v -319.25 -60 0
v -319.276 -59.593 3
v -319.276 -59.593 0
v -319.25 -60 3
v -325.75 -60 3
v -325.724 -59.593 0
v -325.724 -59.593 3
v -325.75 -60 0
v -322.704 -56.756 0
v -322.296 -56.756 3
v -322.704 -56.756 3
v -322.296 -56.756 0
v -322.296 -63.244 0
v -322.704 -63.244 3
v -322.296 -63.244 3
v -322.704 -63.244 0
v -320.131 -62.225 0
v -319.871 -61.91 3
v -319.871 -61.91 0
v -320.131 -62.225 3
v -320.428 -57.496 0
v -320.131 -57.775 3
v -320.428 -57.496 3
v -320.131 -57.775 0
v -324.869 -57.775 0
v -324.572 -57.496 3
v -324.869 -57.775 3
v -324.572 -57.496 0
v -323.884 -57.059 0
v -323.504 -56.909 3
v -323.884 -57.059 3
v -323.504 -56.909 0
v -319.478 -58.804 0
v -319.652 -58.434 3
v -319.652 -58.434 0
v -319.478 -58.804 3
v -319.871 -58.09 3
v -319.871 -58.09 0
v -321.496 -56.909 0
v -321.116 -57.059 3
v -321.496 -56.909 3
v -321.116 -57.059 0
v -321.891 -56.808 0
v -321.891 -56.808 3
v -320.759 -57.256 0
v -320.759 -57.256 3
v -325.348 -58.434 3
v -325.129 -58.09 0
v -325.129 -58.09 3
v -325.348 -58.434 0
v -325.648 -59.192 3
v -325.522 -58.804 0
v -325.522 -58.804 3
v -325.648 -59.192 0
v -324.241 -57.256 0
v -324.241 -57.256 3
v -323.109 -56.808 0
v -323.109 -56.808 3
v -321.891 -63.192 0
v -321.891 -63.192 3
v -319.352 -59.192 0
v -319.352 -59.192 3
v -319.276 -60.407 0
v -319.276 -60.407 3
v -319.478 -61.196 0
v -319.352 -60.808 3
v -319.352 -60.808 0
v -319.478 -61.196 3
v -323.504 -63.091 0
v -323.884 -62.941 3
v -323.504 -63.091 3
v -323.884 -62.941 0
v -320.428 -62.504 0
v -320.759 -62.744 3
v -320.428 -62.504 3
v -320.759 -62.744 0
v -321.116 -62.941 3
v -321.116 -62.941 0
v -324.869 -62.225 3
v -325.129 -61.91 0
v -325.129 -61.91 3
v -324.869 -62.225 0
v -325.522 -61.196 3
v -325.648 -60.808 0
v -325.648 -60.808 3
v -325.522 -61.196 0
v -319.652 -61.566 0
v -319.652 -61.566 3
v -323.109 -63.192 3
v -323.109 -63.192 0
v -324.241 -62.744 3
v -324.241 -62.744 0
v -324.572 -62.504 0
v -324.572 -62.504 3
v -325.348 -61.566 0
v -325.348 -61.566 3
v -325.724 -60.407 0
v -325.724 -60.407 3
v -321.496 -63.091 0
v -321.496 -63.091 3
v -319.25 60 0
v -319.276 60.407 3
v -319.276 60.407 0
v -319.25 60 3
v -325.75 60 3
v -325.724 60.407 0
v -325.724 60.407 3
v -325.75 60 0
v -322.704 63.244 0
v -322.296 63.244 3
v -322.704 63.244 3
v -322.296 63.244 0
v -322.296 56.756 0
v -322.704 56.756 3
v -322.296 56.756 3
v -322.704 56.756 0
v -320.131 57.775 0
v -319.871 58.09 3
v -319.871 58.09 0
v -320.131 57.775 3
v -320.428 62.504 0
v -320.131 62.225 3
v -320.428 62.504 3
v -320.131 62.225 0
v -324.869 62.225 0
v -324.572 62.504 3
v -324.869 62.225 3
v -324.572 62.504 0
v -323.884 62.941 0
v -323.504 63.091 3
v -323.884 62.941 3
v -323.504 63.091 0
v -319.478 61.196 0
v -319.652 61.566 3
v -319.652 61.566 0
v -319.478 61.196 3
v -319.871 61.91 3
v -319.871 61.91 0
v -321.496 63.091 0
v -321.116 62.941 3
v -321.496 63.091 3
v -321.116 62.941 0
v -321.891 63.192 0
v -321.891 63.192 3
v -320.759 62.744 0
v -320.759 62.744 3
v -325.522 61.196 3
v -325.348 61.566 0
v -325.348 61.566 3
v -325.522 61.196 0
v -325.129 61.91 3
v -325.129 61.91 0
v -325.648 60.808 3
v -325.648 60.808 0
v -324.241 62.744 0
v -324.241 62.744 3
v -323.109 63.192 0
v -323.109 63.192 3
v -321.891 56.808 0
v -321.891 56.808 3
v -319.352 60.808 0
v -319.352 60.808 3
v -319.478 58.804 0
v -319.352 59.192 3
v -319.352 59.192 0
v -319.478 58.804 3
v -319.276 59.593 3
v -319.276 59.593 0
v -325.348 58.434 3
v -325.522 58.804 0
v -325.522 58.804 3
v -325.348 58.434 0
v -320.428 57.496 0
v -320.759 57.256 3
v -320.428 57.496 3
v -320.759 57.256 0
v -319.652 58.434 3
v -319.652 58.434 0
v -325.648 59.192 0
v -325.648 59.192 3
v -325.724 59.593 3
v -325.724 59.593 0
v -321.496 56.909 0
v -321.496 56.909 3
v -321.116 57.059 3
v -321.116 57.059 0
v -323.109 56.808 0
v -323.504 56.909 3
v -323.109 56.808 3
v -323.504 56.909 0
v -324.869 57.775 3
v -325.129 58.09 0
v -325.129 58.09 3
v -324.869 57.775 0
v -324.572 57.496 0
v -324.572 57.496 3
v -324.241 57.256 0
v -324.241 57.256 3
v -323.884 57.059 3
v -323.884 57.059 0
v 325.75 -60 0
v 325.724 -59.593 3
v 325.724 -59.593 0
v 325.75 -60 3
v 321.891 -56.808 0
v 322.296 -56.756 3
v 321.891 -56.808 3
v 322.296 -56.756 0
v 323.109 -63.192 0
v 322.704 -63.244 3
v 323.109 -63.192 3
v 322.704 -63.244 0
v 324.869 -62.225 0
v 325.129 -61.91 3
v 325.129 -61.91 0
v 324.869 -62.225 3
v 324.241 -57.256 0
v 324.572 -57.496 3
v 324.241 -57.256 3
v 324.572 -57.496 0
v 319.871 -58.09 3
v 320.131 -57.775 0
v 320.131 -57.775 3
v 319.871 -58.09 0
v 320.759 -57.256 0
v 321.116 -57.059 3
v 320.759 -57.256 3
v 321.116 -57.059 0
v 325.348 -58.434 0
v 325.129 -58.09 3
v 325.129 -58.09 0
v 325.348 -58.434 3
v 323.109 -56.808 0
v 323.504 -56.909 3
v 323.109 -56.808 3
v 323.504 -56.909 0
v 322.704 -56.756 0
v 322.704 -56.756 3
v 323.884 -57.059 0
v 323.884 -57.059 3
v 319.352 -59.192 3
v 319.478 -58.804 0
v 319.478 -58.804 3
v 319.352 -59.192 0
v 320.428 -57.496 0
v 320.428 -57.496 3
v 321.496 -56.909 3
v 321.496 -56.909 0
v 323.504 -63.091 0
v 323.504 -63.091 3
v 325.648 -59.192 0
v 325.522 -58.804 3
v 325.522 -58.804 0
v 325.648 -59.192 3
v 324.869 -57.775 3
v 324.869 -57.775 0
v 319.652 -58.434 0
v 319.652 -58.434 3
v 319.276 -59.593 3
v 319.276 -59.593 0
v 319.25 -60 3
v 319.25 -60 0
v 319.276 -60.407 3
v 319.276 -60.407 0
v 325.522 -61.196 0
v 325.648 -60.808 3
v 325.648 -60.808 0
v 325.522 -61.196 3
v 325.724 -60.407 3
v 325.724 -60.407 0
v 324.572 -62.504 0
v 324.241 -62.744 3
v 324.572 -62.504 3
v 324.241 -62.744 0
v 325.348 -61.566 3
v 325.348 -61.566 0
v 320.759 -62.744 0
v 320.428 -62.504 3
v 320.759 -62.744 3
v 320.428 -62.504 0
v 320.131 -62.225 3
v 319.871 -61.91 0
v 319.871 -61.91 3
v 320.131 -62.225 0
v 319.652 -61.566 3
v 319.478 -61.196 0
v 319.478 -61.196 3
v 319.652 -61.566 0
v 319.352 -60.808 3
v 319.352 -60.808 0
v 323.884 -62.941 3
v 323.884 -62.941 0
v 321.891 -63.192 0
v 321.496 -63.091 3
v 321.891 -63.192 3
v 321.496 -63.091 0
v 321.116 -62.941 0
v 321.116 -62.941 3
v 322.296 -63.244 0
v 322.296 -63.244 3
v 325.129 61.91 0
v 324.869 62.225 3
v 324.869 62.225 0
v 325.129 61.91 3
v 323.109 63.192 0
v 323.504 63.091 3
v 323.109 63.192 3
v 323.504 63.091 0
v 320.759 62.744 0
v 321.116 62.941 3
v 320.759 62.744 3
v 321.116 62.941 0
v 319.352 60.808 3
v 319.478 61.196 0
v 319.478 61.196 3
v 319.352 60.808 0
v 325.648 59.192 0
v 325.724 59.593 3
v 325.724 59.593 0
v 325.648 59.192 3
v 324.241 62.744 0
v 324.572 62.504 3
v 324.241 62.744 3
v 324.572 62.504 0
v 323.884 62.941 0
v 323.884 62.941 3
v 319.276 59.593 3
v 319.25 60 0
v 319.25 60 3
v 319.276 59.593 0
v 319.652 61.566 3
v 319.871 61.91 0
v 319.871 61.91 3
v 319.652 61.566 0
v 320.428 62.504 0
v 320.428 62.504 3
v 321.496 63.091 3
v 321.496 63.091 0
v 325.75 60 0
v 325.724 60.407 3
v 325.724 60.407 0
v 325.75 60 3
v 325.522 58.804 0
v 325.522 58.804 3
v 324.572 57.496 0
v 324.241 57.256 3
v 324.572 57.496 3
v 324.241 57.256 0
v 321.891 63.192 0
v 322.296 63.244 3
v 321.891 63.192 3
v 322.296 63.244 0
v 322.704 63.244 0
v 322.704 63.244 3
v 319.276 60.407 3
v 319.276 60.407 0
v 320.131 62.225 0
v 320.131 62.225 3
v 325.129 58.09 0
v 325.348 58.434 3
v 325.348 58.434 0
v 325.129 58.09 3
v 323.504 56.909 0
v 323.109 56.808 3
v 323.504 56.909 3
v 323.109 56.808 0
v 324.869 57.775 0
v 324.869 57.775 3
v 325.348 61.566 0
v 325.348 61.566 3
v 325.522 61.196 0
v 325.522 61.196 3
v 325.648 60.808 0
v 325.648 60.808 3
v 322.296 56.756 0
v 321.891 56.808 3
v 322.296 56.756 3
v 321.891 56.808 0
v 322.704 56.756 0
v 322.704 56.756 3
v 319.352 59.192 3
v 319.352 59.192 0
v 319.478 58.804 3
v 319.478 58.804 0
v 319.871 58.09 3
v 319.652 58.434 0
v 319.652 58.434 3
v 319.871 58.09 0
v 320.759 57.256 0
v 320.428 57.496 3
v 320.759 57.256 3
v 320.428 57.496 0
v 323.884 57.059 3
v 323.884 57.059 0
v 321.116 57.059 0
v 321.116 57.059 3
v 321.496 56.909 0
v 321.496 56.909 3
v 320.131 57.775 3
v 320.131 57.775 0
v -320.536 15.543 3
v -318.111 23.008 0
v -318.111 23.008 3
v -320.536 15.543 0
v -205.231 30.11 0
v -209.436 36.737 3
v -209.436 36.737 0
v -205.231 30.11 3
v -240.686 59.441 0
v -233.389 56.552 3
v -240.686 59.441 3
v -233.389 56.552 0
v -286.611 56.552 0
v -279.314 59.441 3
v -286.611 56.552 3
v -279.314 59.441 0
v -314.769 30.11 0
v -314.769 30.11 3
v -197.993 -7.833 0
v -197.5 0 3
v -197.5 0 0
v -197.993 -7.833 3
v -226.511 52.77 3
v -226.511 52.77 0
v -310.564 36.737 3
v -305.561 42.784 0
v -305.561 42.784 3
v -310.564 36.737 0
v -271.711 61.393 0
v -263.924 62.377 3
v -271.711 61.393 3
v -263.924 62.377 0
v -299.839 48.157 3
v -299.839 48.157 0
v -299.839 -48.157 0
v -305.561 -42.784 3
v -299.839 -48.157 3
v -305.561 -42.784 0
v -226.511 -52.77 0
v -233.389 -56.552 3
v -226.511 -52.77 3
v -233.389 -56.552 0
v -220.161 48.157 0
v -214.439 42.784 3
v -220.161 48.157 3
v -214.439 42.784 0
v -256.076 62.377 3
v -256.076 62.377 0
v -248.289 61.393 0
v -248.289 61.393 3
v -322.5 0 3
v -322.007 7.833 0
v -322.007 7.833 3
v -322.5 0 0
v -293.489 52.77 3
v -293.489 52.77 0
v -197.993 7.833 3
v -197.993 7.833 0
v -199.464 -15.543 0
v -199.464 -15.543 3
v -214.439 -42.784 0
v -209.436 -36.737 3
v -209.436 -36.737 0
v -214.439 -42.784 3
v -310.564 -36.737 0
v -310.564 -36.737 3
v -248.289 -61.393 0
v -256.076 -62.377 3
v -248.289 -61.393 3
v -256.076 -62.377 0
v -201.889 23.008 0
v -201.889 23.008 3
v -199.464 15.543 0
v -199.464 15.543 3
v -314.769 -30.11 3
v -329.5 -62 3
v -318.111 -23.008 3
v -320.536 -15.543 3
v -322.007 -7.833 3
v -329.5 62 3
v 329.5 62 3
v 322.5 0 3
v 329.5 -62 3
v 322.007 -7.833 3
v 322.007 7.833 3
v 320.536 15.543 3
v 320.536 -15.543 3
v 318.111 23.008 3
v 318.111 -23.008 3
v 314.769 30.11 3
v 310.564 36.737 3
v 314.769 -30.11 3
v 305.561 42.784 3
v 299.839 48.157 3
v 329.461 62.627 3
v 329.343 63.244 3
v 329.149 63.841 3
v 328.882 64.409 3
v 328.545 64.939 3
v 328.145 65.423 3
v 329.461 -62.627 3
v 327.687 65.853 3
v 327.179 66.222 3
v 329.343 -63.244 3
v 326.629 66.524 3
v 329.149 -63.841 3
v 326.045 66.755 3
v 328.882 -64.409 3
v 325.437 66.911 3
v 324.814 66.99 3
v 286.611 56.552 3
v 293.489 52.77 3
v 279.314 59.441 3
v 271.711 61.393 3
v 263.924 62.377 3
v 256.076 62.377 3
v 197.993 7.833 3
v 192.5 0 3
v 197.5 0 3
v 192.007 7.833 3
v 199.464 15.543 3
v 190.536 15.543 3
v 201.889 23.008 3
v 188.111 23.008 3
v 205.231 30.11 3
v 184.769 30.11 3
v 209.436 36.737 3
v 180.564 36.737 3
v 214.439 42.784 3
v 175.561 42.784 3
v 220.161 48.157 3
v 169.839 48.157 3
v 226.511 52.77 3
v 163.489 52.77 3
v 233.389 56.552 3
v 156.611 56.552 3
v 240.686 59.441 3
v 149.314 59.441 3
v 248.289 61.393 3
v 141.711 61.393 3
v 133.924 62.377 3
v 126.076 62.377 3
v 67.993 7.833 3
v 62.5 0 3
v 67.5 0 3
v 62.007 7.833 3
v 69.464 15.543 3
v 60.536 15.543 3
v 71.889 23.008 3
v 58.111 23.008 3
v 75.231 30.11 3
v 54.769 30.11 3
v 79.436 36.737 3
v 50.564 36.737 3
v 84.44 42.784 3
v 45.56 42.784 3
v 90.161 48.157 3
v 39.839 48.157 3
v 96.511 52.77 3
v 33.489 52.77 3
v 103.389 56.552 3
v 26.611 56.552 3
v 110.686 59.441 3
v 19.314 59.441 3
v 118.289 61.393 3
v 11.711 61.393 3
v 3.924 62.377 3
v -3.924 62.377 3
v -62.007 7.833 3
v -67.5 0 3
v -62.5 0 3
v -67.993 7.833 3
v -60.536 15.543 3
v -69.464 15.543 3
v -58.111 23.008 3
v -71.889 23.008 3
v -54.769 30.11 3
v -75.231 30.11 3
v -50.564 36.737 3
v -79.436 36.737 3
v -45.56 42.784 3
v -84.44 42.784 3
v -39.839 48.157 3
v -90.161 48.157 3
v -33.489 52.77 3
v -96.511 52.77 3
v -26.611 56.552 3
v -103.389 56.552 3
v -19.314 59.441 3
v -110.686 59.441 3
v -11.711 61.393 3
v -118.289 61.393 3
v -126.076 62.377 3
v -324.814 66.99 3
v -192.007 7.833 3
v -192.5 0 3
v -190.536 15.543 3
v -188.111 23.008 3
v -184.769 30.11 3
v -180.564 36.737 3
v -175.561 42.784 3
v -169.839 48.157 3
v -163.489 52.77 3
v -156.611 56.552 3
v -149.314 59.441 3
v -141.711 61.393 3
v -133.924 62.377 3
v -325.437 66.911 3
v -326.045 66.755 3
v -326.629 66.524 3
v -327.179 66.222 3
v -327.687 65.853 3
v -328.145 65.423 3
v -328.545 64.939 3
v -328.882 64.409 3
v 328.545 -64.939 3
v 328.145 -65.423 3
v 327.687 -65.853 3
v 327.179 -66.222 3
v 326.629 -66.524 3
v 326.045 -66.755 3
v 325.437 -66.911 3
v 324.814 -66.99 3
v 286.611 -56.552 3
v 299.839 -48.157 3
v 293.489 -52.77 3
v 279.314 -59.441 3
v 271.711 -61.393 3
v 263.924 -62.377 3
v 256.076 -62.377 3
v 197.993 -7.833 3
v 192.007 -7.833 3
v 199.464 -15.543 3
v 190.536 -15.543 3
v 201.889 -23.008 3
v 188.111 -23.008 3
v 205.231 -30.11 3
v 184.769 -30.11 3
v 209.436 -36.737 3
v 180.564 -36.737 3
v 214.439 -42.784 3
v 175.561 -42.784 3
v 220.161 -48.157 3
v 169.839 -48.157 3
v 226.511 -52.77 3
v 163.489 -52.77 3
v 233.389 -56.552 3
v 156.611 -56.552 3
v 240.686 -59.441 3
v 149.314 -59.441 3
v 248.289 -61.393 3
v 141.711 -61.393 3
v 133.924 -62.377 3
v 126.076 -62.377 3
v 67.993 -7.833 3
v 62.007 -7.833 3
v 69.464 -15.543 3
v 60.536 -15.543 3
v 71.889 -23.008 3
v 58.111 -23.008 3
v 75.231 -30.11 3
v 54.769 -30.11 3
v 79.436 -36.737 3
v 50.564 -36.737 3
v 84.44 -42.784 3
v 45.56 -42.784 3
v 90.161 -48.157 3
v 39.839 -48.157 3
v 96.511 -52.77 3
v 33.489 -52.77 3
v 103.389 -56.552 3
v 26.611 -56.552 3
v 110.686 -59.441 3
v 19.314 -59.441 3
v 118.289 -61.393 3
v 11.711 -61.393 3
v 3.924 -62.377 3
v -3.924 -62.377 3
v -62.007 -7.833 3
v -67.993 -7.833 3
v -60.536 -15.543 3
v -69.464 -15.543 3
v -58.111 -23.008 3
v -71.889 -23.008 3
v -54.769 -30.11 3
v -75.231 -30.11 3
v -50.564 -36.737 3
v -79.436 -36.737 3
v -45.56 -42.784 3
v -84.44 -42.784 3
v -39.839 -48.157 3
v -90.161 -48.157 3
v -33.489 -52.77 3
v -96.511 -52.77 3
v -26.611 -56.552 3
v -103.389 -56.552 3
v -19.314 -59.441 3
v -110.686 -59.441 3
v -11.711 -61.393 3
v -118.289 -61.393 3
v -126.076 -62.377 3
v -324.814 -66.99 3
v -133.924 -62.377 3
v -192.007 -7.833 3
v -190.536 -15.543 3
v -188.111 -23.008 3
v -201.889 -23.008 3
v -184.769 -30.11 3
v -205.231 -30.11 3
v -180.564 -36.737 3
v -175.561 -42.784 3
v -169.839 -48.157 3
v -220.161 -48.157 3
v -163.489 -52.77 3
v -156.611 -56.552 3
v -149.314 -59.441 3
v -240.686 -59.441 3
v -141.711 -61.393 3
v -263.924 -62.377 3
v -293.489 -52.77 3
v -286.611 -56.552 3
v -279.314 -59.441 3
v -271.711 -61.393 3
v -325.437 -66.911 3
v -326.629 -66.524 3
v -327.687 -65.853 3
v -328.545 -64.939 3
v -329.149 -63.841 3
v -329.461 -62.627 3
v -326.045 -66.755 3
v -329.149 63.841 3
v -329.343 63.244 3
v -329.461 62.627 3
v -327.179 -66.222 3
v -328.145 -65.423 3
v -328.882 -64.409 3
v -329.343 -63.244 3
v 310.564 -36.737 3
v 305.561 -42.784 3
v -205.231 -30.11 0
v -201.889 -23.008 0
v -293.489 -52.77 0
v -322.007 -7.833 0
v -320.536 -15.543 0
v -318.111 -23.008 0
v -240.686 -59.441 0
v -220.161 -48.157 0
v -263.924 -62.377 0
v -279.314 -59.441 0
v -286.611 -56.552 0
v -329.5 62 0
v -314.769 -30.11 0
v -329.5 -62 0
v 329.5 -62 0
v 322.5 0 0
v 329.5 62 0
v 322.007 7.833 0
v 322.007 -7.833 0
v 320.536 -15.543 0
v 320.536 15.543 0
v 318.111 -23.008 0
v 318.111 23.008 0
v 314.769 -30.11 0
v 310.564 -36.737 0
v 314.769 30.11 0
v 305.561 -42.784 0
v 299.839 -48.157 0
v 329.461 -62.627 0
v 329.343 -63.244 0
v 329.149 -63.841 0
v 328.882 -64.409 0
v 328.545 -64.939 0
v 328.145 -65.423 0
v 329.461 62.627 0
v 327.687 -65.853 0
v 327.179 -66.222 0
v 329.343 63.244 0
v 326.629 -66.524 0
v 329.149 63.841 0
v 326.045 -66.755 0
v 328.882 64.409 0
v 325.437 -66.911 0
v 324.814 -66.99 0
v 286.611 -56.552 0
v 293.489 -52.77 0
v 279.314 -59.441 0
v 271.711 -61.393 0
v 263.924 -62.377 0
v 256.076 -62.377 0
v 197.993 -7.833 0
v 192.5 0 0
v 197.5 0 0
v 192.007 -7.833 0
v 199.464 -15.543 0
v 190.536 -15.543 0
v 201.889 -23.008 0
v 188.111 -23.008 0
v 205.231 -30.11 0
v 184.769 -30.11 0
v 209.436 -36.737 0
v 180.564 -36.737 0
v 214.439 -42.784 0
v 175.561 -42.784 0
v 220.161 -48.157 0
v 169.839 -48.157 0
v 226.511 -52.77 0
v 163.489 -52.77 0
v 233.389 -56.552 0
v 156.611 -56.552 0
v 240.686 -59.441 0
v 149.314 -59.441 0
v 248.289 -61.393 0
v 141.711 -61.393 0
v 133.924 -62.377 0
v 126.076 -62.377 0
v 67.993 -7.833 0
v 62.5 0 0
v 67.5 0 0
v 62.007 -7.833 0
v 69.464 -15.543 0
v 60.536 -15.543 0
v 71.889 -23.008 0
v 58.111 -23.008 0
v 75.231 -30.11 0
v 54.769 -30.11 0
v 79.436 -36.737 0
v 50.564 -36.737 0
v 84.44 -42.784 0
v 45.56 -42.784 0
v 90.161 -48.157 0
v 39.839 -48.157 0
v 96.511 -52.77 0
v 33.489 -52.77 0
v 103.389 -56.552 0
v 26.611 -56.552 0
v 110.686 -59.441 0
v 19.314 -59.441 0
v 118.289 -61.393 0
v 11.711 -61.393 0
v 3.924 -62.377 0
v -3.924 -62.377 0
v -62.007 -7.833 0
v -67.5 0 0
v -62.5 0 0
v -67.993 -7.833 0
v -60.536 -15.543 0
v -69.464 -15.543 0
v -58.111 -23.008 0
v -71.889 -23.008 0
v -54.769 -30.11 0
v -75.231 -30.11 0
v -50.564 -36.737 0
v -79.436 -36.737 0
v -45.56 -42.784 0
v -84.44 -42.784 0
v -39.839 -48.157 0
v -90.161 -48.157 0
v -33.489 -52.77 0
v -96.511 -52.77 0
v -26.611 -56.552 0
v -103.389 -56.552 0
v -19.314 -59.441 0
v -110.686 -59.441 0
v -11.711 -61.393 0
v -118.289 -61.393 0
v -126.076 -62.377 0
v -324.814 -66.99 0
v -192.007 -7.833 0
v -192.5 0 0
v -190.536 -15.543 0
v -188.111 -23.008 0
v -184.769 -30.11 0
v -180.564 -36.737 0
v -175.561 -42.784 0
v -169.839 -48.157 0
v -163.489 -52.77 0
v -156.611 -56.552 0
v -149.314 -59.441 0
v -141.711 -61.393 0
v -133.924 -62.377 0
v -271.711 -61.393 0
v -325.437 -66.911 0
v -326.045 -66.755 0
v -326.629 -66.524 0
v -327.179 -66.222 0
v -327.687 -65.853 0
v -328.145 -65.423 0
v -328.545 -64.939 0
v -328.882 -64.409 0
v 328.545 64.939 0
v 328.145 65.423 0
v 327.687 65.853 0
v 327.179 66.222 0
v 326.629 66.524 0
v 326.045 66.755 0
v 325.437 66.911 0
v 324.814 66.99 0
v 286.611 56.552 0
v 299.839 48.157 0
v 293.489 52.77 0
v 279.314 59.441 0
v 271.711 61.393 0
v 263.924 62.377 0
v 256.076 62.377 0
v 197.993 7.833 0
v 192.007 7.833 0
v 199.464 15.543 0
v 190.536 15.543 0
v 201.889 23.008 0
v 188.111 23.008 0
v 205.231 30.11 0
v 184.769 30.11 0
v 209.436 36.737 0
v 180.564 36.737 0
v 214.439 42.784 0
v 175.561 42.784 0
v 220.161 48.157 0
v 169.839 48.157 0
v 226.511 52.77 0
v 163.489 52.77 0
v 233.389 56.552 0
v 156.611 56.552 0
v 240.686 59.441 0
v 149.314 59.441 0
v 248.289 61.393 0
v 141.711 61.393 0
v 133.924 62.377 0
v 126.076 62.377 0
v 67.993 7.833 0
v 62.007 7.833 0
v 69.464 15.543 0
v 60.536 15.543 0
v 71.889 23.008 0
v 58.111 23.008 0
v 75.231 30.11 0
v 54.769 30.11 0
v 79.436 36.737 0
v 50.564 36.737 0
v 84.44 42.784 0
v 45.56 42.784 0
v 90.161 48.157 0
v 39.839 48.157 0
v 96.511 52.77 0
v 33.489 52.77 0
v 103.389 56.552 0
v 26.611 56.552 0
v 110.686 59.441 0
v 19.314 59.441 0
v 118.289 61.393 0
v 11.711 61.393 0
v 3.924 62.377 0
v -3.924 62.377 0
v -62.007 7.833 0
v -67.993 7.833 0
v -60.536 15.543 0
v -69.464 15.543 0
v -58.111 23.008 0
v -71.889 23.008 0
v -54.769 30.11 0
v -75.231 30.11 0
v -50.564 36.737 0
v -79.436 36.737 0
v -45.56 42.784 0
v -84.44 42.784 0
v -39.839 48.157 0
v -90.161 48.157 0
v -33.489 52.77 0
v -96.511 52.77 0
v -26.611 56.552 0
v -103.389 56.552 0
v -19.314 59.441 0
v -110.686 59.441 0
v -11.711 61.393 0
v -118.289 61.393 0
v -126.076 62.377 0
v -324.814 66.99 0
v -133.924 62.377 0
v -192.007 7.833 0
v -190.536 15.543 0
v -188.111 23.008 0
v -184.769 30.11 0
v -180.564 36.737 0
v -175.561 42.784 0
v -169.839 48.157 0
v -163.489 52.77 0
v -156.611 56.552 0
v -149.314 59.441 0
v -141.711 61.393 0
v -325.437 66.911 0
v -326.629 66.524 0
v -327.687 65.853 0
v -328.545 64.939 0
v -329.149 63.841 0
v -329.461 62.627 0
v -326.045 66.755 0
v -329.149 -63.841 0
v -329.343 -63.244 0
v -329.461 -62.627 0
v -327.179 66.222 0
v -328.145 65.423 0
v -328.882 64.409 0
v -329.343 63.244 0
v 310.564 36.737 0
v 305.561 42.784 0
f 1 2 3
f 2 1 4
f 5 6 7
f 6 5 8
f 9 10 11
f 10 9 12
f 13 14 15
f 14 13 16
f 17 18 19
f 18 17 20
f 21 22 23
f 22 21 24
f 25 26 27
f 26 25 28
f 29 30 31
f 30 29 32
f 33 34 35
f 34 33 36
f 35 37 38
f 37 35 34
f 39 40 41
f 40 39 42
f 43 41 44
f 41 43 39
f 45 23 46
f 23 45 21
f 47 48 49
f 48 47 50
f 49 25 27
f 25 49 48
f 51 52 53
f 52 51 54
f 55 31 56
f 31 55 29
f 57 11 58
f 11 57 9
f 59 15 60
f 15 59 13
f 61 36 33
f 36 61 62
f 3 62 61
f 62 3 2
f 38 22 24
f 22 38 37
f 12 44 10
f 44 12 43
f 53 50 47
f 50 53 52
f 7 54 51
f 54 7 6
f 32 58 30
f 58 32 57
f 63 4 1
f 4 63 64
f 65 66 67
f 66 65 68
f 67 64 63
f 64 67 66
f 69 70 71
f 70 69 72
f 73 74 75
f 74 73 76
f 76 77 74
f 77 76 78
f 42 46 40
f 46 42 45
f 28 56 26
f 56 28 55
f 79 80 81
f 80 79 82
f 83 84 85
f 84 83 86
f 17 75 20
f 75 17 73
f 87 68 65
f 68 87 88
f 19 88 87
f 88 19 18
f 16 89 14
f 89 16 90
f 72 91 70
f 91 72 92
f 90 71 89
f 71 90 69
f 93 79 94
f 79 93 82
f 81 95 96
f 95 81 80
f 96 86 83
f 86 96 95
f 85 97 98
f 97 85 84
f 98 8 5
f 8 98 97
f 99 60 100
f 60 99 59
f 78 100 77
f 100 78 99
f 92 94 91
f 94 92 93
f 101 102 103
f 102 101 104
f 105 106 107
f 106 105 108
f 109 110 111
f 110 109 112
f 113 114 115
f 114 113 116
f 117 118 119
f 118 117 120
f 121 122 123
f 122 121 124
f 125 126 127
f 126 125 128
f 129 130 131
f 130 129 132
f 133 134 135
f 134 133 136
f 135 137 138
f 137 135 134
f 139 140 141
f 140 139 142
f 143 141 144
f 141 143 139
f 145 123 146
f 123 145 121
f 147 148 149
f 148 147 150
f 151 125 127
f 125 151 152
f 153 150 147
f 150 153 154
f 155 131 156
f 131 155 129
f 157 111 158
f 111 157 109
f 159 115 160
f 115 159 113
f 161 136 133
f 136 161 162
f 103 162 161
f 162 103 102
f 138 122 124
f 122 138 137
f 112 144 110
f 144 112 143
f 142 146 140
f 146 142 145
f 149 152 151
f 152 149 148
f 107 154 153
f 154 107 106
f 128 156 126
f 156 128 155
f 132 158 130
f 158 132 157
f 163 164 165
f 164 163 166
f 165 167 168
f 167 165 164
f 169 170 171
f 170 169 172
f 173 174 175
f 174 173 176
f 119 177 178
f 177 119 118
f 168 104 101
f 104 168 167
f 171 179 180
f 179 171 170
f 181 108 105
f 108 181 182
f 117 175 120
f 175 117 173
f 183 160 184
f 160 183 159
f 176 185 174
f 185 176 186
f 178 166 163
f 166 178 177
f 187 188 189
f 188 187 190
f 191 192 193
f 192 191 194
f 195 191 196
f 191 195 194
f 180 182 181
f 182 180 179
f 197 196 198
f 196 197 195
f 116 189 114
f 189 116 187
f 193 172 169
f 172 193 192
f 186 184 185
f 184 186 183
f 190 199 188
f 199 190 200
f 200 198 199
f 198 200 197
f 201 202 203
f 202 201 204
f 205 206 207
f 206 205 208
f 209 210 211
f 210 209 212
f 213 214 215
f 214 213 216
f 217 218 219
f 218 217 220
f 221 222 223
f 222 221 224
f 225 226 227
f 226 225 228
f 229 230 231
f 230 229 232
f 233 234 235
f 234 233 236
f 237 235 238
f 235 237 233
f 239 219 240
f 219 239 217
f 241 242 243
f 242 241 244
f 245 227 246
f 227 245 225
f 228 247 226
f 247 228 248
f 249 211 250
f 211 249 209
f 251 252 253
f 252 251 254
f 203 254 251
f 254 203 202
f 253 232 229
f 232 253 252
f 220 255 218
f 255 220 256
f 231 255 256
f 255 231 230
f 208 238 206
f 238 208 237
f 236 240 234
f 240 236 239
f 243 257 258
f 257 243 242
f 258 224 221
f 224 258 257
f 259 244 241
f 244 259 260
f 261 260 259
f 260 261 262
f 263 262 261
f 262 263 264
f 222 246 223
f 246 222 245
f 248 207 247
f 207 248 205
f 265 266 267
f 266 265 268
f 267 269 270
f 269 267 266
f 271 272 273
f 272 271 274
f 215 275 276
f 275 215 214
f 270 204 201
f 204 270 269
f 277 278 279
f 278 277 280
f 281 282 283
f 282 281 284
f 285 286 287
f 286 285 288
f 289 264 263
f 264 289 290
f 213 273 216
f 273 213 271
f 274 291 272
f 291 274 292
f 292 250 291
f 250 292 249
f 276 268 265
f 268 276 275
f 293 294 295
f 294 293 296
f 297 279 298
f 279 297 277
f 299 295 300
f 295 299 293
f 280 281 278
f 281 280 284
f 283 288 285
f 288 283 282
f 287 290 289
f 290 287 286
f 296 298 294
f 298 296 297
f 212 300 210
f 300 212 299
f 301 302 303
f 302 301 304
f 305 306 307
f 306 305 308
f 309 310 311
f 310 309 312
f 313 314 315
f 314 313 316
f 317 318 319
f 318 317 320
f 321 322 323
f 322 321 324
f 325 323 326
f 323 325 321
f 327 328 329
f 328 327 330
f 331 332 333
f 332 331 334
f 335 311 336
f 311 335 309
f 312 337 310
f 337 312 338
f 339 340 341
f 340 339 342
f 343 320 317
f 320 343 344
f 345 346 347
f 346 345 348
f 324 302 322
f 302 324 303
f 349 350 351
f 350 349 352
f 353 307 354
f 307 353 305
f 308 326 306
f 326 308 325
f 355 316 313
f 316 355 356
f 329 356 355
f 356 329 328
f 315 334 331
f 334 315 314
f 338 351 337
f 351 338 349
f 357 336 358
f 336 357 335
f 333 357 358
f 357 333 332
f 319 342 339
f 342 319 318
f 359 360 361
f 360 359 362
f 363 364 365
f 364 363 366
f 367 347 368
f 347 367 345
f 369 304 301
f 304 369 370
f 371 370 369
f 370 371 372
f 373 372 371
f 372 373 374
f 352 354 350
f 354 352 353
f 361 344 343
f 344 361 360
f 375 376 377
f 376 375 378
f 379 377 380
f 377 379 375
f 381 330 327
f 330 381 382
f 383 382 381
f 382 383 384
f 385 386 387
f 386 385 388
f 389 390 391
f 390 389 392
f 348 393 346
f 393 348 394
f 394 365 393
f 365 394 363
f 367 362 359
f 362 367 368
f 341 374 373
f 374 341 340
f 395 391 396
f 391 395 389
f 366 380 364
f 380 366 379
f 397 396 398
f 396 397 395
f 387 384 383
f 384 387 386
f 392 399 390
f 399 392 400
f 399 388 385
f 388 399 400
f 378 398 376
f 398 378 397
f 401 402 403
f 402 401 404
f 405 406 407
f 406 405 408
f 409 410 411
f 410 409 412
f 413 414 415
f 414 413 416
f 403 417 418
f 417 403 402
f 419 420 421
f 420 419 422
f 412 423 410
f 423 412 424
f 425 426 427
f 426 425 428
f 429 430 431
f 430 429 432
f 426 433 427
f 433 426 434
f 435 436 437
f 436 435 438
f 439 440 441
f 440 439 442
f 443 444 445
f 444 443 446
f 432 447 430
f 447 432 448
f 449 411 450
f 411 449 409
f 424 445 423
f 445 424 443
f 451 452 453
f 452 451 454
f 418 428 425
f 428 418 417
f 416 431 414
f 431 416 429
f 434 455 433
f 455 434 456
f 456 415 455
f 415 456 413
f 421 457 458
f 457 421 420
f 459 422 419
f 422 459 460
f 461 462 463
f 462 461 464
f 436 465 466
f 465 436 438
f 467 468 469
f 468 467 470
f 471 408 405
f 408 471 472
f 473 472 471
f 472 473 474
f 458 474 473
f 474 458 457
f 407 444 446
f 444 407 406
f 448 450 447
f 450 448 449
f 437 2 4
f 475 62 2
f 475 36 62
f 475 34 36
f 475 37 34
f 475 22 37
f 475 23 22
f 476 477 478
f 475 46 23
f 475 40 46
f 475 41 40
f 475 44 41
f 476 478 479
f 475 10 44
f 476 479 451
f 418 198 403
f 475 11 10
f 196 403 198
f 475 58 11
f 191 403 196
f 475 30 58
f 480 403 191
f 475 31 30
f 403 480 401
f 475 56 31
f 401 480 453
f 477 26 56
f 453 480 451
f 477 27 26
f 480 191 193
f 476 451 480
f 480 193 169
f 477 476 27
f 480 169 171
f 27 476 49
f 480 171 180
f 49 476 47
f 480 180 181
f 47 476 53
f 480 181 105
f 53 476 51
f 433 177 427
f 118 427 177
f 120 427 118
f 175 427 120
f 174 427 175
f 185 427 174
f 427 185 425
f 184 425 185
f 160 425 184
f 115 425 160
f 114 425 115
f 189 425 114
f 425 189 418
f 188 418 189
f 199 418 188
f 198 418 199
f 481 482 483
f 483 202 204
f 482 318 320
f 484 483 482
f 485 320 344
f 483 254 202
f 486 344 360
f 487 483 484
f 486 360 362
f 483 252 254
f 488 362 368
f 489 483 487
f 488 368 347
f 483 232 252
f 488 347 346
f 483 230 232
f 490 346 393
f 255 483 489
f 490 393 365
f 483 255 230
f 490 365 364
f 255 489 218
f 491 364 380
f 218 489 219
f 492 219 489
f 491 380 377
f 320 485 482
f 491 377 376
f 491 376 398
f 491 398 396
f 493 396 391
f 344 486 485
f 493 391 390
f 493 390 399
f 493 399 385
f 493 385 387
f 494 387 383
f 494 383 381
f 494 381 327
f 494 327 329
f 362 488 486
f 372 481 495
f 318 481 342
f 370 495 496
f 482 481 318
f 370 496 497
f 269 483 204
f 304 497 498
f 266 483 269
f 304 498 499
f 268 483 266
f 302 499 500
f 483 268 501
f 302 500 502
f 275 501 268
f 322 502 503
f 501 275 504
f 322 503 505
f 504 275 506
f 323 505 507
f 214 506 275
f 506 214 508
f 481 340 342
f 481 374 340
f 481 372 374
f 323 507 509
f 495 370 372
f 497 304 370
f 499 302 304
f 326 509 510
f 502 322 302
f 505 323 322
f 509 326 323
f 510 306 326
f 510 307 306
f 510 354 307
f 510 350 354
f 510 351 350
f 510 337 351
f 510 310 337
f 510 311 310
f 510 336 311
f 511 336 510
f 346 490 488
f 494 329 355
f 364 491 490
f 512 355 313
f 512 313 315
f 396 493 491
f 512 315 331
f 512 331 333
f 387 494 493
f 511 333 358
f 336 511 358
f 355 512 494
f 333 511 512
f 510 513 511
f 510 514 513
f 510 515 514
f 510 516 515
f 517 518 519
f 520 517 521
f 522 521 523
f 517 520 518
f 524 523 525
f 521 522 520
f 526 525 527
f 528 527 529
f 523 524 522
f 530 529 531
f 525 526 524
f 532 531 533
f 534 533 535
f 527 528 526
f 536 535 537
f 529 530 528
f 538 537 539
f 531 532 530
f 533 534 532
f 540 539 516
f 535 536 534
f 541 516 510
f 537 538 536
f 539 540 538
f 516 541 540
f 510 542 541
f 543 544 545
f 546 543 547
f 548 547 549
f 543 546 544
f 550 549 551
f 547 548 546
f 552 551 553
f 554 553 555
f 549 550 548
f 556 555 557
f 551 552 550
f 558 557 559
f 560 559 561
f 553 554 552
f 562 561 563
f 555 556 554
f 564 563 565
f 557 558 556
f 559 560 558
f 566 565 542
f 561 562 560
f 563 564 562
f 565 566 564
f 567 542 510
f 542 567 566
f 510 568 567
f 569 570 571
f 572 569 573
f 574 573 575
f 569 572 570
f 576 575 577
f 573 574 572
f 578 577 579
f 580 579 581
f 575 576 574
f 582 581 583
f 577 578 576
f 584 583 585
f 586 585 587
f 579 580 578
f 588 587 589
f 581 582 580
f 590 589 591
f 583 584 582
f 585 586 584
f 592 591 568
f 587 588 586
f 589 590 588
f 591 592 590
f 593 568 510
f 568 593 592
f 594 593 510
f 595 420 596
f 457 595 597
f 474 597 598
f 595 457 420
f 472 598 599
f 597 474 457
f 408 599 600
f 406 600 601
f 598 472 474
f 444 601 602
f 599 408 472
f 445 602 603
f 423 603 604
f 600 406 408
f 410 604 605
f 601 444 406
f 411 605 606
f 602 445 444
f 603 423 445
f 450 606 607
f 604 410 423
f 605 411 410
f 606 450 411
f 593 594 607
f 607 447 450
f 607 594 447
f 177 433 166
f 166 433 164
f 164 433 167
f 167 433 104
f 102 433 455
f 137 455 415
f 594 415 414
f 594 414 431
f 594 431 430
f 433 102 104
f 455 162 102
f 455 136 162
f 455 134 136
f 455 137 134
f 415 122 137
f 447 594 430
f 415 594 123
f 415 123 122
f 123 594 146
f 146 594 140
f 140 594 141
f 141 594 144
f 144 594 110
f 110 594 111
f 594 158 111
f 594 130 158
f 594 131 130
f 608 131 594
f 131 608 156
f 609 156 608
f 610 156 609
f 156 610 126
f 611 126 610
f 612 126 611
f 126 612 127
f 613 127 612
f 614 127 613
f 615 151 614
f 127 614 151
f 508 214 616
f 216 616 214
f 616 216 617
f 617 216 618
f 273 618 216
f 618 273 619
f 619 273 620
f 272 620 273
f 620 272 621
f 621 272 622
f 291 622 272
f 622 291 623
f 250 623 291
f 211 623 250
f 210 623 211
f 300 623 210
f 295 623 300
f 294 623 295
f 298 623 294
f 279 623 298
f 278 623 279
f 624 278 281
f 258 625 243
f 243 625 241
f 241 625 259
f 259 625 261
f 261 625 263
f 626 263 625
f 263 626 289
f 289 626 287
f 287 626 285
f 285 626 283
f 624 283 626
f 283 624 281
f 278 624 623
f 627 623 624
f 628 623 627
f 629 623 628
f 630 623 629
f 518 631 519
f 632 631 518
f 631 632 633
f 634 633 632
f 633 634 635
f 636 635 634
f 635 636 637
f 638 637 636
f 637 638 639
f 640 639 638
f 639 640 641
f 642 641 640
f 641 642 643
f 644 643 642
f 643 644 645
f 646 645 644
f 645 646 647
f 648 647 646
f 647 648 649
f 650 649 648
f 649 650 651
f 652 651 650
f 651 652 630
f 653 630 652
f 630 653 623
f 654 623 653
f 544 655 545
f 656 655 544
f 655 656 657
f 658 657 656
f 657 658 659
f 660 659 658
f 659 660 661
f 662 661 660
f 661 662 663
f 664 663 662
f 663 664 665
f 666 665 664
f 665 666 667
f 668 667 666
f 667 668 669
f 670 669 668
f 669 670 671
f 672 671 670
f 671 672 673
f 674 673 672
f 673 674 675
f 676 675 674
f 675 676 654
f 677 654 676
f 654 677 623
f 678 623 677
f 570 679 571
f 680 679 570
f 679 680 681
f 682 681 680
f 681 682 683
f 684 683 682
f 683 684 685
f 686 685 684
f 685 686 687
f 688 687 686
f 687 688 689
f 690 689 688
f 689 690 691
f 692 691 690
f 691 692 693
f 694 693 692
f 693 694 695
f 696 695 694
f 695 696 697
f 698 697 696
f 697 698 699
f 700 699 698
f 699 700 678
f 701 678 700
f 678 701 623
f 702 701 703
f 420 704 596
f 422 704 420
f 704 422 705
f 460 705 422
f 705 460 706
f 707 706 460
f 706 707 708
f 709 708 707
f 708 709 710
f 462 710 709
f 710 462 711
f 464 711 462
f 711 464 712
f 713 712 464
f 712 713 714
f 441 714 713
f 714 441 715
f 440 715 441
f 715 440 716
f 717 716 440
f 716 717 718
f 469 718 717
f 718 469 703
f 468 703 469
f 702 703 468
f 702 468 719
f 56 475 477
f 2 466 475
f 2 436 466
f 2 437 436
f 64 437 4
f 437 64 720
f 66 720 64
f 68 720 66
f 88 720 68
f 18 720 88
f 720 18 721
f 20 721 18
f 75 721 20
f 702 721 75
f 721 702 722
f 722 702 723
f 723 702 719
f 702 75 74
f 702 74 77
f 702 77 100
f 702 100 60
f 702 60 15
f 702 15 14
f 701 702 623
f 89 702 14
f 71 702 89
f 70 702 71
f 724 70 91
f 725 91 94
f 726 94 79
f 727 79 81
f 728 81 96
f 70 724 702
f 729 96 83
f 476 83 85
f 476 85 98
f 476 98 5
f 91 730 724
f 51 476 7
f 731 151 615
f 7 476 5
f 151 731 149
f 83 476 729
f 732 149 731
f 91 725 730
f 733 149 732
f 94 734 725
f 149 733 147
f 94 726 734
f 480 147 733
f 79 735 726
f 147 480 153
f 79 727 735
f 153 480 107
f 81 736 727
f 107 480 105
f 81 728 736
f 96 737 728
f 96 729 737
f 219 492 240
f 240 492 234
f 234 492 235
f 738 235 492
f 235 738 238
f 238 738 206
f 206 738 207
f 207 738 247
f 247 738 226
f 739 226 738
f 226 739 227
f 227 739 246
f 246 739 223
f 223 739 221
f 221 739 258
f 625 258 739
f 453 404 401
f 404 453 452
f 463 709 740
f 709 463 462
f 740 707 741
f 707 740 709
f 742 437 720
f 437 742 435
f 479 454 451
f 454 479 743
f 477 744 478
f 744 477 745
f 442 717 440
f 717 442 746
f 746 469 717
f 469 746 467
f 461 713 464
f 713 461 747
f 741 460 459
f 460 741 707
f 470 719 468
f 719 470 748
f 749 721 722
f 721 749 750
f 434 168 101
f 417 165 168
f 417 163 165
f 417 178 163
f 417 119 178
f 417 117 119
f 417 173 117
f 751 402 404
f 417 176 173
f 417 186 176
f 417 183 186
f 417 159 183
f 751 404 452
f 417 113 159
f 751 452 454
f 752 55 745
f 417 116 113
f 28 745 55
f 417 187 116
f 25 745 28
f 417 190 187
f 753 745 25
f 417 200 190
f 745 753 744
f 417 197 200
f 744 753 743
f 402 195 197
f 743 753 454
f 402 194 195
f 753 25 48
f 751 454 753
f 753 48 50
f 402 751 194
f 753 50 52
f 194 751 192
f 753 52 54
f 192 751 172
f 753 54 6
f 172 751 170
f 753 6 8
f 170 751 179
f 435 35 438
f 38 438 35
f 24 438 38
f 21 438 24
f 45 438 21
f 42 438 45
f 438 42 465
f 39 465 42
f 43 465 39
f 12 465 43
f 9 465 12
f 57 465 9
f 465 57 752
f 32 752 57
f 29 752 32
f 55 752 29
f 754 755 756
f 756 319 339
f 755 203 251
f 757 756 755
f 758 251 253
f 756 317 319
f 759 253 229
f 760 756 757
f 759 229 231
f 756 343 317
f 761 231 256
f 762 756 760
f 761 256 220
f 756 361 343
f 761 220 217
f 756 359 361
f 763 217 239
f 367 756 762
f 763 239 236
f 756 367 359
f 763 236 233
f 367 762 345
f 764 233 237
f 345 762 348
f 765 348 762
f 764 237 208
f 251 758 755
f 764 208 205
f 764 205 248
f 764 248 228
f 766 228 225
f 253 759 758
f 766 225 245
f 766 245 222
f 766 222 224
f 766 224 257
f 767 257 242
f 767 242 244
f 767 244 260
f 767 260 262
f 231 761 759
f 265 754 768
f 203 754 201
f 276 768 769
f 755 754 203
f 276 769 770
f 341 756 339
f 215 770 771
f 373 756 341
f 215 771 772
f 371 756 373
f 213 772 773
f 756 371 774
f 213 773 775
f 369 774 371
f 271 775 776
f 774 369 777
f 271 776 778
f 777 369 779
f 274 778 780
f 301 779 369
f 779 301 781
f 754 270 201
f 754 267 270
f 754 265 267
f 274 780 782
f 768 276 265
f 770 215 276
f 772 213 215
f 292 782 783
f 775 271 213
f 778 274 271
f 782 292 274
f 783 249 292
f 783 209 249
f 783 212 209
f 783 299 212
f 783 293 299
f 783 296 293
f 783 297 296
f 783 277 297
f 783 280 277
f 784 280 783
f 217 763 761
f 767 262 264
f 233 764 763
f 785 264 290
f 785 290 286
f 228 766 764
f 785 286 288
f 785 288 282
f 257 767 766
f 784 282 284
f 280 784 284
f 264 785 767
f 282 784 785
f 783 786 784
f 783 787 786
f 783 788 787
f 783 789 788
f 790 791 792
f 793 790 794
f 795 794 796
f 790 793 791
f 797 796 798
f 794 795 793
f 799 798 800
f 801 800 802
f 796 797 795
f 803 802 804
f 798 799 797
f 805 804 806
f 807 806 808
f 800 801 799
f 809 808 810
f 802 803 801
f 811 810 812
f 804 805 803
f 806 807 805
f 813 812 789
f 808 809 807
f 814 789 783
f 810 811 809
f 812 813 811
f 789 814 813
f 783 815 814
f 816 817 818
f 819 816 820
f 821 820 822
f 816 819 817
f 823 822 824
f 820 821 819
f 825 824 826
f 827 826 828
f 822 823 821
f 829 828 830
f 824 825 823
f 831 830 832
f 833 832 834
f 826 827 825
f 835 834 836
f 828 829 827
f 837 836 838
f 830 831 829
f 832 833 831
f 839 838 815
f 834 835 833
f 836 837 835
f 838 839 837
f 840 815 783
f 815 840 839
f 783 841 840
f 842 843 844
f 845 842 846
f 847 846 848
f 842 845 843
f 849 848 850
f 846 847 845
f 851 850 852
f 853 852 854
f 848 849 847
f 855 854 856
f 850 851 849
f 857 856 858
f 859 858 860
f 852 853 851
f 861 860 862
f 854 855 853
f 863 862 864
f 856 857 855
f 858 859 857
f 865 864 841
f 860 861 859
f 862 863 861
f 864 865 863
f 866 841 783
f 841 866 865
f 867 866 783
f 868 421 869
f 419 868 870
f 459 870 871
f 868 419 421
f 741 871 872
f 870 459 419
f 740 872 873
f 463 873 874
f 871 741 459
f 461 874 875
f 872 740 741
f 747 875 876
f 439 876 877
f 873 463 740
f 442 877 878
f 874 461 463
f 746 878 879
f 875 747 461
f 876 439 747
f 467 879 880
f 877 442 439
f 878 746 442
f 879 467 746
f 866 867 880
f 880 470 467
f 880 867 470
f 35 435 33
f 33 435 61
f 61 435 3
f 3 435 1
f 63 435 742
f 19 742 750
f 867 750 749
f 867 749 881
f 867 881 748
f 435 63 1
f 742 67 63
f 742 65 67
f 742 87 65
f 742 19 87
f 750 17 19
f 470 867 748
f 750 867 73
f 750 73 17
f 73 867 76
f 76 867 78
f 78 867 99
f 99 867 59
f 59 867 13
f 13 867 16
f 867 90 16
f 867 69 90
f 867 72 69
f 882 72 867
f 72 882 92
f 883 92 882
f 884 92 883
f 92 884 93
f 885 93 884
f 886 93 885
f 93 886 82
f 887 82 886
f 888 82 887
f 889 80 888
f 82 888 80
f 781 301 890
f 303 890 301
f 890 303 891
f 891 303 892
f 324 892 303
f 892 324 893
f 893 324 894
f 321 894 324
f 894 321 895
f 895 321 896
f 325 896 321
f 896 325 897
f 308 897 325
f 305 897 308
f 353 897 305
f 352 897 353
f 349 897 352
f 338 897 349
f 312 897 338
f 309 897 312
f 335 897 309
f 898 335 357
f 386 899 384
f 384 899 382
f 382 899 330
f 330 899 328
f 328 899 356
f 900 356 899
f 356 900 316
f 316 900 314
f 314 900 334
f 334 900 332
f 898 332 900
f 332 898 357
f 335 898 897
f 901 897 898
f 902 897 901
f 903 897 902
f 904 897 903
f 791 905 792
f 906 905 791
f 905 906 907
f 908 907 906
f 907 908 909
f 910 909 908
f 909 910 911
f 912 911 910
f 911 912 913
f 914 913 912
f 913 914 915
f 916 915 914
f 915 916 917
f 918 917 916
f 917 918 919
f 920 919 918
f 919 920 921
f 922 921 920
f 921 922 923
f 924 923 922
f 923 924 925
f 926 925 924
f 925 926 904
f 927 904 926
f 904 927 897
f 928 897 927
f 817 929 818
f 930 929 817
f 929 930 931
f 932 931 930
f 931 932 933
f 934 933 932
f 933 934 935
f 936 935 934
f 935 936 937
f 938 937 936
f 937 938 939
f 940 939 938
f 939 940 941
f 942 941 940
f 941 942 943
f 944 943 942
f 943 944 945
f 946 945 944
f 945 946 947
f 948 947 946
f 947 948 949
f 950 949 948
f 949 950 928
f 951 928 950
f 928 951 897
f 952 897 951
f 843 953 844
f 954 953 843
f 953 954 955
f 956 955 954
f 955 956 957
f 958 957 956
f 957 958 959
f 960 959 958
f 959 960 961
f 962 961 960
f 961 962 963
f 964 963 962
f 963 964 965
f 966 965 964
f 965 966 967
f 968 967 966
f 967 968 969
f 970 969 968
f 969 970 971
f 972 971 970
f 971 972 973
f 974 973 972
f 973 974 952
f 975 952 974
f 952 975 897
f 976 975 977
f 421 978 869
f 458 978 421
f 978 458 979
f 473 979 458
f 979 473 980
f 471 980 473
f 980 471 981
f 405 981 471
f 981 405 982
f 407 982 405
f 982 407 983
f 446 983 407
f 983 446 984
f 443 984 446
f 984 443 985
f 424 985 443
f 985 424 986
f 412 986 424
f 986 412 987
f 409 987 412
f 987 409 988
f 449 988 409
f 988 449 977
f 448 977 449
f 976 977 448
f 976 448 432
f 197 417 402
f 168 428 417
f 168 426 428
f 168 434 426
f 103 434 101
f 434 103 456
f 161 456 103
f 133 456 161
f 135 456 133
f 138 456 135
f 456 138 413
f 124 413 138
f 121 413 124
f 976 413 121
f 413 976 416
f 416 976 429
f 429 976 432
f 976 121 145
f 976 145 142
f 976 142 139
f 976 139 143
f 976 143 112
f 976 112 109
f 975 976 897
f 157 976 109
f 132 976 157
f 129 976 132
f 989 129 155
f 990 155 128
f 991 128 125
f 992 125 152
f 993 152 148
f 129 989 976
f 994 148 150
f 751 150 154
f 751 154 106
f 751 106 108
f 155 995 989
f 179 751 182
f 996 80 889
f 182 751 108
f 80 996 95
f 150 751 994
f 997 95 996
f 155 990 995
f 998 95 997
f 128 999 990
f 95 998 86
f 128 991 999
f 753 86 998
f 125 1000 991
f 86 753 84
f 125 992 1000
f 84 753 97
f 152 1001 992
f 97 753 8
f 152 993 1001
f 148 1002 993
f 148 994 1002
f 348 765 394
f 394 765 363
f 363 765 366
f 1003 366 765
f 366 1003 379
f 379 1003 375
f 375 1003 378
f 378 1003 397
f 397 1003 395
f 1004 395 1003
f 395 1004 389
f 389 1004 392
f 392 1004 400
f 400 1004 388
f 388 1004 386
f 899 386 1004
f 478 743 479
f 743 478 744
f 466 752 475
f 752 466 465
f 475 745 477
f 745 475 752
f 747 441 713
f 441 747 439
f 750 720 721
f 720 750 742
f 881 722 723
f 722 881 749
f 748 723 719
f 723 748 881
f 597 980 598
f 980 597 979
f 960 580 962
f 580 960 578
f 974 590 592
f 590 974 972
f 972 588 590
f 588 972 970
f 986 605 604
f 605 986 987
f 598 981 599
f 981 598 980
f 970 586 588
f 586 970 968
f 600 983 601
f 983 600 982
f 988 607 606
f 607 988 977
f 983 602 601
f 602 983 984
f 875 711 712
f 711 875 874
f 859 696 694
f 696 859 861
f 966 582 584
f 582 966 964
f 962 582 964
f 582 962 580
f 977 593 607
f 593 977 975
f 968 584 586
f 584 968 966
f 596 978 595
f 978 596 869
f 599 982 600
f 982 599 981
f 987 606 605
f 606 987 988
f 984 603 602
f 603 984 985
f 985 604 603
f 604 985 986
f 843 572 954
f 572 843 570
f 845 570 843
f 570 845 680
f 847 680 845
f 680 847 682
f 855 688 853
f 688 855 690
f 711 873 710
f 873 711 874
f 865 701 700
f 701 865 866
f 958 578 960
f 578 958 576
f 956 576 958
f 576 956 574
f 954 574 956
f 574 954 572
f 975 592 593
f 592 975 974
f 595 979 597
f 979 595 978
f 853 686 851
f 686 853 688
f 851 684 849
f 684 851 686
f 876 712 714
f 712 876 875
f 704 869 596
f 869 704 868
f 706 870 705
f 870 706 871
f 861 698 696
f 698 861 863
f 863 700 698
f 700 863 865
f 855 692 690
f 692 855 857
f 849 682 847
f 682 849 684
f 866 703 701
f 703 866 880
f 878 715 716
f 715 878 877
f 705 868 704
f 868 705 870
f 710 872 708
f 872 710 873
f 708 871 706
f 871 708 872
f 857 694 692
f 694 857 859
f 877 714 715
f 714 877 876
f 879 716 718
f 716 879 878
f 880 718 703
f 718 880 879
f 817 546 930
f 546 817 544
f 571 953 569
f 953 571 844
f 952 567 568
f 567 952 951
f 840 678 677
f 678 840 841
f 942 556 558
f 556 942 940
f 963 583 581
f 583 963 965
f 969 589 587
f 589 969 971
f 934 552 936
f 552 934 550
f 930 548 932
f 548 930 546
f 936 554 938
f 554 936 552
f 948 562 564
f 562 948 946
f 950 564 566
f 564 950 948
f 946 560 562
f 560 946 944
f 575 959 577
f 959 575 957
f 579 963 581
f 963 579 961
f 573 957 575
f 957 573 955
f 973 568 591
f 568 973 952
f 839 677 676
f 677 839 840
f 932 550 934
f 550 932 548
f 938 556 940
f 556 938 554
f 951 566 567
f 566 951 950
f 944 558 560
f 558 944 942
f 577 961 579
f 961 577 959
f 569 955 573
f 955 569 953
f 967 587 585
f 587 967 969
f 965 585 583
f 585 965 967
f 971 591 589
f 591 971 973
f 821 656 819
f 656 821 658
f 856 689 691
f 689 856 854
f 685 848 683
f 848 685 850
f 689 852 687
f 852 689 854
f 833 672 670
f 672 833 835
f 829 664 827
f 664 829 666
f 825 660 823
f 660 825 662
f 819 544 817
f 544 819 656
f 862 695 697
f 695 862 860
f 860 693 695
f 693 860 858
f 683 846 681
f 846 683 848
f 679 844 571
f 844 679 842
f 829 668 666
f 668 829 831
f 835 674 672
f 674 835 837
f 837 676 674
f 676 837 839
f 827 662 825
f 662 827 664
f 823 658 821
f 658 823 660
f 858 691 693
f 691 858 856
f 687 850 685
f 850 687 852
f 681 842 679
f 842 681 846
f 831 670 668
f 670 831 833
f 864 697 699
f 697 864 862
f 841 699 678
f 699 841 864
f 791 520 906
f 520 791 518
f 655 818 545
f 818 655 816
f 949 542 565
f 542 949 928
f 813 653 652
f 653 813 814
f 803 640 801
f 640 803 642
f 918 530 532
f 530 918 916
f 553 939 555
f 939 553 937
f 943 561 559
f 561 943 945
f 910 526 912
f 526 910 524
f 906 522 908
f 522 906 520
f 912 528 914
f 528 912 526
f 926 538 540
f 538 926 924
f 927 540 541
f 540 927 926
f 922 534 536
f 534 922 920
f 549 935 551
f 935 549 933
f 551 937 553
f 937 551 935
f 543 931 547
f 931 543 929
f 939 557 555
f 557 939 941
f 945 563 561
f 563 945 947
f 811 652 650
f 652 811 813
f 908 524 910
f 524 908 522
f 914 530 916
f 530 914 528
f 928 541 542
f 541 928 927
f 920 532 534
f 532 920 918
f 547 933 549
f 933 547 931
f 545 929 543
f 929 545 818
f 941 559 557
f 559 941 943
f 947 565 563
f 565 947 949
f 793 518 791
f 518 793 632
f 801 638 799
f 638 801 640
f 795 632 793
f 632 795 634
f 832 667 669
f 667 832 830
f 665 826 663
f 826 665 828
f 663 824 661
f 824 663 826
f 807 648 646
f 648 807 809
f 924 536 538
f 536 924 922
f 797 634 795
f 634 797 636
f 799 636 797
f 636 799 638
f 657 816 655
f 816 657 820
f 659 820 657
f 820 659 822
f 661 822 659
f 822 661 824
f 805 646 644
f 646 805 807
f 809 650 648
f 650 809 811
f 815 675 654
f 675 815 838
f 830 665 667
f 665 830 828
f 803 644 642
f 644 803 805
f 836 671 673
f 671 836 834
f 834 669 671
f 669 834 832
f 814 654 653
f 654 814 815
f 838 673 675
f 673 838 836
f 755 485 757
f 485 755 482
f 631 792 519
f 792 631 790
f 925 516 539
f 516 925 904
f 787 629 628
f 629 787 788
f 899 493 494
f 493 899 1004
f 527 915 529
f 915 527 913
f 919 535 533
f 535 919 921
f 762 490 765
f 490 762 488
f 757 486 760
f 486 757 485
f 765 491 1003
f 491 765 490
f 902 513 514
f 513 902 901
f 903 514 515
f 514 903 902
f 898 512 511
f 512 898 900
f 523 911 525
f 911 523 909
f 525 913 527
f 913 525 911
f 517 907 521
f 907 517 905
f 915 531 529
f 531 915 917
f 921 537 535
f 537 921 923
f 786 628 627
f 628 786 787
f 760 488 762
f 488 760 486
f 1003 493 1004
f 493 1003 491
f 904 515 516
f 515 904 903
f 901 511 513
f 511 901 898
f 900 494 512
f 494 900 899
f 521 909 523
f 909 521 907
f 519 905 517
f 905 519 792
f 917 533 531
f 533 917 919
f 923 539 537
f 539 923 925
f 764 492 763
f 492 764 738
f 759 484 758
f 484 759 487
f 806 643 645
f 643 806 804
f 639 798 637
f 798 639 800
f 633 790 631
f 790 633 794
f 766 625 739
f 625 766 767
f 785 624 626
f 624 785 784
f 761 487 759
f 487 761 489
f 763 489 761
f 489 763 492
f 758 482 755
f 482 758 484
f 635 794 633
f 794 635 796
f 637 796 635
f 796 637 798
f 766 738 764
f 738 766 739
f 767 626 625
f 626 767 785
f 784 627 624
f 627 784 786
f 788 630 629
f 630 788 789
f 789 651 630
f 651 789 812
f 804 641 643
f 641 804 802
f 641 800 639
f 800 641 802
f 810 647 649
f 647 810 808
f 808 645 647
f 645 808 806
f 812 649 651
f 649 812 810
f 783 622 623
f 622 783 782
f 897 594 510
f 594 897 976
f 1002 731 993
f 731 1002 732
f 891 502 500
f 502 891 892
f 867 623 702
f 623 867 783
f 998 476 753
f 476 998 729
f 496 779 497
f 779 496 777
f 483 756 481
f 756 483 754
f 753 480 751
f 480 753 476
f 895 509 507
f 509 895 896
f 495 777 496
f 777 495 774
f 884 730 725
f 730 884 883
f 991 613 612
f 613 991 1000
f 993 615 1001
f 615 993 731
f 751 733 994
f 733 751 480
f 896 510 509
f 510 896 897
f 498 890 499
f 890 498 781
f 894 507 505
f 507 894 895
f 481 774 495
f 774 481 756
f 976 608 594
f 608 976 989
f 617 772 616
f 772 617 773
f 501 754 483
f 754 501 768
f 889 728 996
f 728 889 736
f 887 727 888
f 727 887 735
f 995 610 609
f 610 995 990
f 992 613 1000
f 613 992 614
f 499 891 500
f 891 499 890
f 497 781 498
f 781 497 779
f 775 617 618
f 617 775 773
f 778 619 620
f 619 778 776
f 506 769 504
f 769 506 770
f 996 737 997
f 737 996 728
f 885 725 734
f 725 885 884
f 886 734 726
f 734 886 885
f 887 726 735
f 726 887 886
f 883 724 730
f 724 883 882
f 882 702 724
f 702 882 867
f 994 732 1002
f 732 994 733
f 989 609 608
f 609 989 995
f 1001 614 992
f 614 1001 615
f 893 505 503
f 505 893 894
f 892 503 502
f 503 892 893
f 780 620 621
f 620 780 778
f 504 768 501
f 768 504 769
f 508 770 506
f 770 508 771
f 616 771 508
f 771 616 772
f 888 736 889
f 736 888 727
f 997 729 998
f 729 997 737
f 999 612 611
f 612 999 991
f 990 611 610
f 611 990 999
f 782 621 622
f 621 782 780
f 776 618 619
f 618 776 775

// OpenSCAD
$fn = 50;


difference() {
	union() {
		hull() {
			translate(v = [-324.5000000000, 62.0000000000, 0]) {
				cylinder(h = 3, r = 5);
			}
			translate(v = [324.5000000000, 62.0000000000, 0]) {
				cylinder(h = 3, r = 5);
			}
			translate(v = [-324.5000000000, -62.0000000000, 0]) {
				cylinder(h = 3, r = 5);
			}
			translate(v = [324.5000000000, -62.0000000000, 0]) {
				cylinder(h = 3, r = 5);
			}
		}
	}
	union() {
		#translate(v = [-322.5000000000, -60.0000000000, -100.0000000000]) {
			cylinder(h = 200, r = 3.2500000000);
		}
		#translate(v = [-322.5000000000, 60.0000000000, -100.0000000000]) {
			cylinder(h = 200, r = 3.2500000000);
		}
		#translate(v = [322.5000000000, -60.0000000000, -100.0000000000]) {
			cylinder(h = 200, r = 3.2500000000);
		}
		#translate(v = [322.5000000000, 60.0000000000, -100.0000000000]) {
			cylinder(h = 200, r = 3.2500000000);
		}
		#translate(v = [-260.0000000000, 0, 0]) {
			cylinder(h = 3, r = 62.5000000000);
		}
		#translate(v = [-130.0000000000, 0, 0]) {
			cylinder(h = 3, r = 62.5000000000);
		}
		#cylinder(h = 3, r = 62.5000000000);
		#translate(v = [130.0000000000, 0, 0]) {
			cylinder(h = 3, r = 62.5000000000);
		}
		#translate(v = [260.0000000000, 0, 0]) {
			cylinder(h = 3, r = 62.5000000000);
		}
	}
}
